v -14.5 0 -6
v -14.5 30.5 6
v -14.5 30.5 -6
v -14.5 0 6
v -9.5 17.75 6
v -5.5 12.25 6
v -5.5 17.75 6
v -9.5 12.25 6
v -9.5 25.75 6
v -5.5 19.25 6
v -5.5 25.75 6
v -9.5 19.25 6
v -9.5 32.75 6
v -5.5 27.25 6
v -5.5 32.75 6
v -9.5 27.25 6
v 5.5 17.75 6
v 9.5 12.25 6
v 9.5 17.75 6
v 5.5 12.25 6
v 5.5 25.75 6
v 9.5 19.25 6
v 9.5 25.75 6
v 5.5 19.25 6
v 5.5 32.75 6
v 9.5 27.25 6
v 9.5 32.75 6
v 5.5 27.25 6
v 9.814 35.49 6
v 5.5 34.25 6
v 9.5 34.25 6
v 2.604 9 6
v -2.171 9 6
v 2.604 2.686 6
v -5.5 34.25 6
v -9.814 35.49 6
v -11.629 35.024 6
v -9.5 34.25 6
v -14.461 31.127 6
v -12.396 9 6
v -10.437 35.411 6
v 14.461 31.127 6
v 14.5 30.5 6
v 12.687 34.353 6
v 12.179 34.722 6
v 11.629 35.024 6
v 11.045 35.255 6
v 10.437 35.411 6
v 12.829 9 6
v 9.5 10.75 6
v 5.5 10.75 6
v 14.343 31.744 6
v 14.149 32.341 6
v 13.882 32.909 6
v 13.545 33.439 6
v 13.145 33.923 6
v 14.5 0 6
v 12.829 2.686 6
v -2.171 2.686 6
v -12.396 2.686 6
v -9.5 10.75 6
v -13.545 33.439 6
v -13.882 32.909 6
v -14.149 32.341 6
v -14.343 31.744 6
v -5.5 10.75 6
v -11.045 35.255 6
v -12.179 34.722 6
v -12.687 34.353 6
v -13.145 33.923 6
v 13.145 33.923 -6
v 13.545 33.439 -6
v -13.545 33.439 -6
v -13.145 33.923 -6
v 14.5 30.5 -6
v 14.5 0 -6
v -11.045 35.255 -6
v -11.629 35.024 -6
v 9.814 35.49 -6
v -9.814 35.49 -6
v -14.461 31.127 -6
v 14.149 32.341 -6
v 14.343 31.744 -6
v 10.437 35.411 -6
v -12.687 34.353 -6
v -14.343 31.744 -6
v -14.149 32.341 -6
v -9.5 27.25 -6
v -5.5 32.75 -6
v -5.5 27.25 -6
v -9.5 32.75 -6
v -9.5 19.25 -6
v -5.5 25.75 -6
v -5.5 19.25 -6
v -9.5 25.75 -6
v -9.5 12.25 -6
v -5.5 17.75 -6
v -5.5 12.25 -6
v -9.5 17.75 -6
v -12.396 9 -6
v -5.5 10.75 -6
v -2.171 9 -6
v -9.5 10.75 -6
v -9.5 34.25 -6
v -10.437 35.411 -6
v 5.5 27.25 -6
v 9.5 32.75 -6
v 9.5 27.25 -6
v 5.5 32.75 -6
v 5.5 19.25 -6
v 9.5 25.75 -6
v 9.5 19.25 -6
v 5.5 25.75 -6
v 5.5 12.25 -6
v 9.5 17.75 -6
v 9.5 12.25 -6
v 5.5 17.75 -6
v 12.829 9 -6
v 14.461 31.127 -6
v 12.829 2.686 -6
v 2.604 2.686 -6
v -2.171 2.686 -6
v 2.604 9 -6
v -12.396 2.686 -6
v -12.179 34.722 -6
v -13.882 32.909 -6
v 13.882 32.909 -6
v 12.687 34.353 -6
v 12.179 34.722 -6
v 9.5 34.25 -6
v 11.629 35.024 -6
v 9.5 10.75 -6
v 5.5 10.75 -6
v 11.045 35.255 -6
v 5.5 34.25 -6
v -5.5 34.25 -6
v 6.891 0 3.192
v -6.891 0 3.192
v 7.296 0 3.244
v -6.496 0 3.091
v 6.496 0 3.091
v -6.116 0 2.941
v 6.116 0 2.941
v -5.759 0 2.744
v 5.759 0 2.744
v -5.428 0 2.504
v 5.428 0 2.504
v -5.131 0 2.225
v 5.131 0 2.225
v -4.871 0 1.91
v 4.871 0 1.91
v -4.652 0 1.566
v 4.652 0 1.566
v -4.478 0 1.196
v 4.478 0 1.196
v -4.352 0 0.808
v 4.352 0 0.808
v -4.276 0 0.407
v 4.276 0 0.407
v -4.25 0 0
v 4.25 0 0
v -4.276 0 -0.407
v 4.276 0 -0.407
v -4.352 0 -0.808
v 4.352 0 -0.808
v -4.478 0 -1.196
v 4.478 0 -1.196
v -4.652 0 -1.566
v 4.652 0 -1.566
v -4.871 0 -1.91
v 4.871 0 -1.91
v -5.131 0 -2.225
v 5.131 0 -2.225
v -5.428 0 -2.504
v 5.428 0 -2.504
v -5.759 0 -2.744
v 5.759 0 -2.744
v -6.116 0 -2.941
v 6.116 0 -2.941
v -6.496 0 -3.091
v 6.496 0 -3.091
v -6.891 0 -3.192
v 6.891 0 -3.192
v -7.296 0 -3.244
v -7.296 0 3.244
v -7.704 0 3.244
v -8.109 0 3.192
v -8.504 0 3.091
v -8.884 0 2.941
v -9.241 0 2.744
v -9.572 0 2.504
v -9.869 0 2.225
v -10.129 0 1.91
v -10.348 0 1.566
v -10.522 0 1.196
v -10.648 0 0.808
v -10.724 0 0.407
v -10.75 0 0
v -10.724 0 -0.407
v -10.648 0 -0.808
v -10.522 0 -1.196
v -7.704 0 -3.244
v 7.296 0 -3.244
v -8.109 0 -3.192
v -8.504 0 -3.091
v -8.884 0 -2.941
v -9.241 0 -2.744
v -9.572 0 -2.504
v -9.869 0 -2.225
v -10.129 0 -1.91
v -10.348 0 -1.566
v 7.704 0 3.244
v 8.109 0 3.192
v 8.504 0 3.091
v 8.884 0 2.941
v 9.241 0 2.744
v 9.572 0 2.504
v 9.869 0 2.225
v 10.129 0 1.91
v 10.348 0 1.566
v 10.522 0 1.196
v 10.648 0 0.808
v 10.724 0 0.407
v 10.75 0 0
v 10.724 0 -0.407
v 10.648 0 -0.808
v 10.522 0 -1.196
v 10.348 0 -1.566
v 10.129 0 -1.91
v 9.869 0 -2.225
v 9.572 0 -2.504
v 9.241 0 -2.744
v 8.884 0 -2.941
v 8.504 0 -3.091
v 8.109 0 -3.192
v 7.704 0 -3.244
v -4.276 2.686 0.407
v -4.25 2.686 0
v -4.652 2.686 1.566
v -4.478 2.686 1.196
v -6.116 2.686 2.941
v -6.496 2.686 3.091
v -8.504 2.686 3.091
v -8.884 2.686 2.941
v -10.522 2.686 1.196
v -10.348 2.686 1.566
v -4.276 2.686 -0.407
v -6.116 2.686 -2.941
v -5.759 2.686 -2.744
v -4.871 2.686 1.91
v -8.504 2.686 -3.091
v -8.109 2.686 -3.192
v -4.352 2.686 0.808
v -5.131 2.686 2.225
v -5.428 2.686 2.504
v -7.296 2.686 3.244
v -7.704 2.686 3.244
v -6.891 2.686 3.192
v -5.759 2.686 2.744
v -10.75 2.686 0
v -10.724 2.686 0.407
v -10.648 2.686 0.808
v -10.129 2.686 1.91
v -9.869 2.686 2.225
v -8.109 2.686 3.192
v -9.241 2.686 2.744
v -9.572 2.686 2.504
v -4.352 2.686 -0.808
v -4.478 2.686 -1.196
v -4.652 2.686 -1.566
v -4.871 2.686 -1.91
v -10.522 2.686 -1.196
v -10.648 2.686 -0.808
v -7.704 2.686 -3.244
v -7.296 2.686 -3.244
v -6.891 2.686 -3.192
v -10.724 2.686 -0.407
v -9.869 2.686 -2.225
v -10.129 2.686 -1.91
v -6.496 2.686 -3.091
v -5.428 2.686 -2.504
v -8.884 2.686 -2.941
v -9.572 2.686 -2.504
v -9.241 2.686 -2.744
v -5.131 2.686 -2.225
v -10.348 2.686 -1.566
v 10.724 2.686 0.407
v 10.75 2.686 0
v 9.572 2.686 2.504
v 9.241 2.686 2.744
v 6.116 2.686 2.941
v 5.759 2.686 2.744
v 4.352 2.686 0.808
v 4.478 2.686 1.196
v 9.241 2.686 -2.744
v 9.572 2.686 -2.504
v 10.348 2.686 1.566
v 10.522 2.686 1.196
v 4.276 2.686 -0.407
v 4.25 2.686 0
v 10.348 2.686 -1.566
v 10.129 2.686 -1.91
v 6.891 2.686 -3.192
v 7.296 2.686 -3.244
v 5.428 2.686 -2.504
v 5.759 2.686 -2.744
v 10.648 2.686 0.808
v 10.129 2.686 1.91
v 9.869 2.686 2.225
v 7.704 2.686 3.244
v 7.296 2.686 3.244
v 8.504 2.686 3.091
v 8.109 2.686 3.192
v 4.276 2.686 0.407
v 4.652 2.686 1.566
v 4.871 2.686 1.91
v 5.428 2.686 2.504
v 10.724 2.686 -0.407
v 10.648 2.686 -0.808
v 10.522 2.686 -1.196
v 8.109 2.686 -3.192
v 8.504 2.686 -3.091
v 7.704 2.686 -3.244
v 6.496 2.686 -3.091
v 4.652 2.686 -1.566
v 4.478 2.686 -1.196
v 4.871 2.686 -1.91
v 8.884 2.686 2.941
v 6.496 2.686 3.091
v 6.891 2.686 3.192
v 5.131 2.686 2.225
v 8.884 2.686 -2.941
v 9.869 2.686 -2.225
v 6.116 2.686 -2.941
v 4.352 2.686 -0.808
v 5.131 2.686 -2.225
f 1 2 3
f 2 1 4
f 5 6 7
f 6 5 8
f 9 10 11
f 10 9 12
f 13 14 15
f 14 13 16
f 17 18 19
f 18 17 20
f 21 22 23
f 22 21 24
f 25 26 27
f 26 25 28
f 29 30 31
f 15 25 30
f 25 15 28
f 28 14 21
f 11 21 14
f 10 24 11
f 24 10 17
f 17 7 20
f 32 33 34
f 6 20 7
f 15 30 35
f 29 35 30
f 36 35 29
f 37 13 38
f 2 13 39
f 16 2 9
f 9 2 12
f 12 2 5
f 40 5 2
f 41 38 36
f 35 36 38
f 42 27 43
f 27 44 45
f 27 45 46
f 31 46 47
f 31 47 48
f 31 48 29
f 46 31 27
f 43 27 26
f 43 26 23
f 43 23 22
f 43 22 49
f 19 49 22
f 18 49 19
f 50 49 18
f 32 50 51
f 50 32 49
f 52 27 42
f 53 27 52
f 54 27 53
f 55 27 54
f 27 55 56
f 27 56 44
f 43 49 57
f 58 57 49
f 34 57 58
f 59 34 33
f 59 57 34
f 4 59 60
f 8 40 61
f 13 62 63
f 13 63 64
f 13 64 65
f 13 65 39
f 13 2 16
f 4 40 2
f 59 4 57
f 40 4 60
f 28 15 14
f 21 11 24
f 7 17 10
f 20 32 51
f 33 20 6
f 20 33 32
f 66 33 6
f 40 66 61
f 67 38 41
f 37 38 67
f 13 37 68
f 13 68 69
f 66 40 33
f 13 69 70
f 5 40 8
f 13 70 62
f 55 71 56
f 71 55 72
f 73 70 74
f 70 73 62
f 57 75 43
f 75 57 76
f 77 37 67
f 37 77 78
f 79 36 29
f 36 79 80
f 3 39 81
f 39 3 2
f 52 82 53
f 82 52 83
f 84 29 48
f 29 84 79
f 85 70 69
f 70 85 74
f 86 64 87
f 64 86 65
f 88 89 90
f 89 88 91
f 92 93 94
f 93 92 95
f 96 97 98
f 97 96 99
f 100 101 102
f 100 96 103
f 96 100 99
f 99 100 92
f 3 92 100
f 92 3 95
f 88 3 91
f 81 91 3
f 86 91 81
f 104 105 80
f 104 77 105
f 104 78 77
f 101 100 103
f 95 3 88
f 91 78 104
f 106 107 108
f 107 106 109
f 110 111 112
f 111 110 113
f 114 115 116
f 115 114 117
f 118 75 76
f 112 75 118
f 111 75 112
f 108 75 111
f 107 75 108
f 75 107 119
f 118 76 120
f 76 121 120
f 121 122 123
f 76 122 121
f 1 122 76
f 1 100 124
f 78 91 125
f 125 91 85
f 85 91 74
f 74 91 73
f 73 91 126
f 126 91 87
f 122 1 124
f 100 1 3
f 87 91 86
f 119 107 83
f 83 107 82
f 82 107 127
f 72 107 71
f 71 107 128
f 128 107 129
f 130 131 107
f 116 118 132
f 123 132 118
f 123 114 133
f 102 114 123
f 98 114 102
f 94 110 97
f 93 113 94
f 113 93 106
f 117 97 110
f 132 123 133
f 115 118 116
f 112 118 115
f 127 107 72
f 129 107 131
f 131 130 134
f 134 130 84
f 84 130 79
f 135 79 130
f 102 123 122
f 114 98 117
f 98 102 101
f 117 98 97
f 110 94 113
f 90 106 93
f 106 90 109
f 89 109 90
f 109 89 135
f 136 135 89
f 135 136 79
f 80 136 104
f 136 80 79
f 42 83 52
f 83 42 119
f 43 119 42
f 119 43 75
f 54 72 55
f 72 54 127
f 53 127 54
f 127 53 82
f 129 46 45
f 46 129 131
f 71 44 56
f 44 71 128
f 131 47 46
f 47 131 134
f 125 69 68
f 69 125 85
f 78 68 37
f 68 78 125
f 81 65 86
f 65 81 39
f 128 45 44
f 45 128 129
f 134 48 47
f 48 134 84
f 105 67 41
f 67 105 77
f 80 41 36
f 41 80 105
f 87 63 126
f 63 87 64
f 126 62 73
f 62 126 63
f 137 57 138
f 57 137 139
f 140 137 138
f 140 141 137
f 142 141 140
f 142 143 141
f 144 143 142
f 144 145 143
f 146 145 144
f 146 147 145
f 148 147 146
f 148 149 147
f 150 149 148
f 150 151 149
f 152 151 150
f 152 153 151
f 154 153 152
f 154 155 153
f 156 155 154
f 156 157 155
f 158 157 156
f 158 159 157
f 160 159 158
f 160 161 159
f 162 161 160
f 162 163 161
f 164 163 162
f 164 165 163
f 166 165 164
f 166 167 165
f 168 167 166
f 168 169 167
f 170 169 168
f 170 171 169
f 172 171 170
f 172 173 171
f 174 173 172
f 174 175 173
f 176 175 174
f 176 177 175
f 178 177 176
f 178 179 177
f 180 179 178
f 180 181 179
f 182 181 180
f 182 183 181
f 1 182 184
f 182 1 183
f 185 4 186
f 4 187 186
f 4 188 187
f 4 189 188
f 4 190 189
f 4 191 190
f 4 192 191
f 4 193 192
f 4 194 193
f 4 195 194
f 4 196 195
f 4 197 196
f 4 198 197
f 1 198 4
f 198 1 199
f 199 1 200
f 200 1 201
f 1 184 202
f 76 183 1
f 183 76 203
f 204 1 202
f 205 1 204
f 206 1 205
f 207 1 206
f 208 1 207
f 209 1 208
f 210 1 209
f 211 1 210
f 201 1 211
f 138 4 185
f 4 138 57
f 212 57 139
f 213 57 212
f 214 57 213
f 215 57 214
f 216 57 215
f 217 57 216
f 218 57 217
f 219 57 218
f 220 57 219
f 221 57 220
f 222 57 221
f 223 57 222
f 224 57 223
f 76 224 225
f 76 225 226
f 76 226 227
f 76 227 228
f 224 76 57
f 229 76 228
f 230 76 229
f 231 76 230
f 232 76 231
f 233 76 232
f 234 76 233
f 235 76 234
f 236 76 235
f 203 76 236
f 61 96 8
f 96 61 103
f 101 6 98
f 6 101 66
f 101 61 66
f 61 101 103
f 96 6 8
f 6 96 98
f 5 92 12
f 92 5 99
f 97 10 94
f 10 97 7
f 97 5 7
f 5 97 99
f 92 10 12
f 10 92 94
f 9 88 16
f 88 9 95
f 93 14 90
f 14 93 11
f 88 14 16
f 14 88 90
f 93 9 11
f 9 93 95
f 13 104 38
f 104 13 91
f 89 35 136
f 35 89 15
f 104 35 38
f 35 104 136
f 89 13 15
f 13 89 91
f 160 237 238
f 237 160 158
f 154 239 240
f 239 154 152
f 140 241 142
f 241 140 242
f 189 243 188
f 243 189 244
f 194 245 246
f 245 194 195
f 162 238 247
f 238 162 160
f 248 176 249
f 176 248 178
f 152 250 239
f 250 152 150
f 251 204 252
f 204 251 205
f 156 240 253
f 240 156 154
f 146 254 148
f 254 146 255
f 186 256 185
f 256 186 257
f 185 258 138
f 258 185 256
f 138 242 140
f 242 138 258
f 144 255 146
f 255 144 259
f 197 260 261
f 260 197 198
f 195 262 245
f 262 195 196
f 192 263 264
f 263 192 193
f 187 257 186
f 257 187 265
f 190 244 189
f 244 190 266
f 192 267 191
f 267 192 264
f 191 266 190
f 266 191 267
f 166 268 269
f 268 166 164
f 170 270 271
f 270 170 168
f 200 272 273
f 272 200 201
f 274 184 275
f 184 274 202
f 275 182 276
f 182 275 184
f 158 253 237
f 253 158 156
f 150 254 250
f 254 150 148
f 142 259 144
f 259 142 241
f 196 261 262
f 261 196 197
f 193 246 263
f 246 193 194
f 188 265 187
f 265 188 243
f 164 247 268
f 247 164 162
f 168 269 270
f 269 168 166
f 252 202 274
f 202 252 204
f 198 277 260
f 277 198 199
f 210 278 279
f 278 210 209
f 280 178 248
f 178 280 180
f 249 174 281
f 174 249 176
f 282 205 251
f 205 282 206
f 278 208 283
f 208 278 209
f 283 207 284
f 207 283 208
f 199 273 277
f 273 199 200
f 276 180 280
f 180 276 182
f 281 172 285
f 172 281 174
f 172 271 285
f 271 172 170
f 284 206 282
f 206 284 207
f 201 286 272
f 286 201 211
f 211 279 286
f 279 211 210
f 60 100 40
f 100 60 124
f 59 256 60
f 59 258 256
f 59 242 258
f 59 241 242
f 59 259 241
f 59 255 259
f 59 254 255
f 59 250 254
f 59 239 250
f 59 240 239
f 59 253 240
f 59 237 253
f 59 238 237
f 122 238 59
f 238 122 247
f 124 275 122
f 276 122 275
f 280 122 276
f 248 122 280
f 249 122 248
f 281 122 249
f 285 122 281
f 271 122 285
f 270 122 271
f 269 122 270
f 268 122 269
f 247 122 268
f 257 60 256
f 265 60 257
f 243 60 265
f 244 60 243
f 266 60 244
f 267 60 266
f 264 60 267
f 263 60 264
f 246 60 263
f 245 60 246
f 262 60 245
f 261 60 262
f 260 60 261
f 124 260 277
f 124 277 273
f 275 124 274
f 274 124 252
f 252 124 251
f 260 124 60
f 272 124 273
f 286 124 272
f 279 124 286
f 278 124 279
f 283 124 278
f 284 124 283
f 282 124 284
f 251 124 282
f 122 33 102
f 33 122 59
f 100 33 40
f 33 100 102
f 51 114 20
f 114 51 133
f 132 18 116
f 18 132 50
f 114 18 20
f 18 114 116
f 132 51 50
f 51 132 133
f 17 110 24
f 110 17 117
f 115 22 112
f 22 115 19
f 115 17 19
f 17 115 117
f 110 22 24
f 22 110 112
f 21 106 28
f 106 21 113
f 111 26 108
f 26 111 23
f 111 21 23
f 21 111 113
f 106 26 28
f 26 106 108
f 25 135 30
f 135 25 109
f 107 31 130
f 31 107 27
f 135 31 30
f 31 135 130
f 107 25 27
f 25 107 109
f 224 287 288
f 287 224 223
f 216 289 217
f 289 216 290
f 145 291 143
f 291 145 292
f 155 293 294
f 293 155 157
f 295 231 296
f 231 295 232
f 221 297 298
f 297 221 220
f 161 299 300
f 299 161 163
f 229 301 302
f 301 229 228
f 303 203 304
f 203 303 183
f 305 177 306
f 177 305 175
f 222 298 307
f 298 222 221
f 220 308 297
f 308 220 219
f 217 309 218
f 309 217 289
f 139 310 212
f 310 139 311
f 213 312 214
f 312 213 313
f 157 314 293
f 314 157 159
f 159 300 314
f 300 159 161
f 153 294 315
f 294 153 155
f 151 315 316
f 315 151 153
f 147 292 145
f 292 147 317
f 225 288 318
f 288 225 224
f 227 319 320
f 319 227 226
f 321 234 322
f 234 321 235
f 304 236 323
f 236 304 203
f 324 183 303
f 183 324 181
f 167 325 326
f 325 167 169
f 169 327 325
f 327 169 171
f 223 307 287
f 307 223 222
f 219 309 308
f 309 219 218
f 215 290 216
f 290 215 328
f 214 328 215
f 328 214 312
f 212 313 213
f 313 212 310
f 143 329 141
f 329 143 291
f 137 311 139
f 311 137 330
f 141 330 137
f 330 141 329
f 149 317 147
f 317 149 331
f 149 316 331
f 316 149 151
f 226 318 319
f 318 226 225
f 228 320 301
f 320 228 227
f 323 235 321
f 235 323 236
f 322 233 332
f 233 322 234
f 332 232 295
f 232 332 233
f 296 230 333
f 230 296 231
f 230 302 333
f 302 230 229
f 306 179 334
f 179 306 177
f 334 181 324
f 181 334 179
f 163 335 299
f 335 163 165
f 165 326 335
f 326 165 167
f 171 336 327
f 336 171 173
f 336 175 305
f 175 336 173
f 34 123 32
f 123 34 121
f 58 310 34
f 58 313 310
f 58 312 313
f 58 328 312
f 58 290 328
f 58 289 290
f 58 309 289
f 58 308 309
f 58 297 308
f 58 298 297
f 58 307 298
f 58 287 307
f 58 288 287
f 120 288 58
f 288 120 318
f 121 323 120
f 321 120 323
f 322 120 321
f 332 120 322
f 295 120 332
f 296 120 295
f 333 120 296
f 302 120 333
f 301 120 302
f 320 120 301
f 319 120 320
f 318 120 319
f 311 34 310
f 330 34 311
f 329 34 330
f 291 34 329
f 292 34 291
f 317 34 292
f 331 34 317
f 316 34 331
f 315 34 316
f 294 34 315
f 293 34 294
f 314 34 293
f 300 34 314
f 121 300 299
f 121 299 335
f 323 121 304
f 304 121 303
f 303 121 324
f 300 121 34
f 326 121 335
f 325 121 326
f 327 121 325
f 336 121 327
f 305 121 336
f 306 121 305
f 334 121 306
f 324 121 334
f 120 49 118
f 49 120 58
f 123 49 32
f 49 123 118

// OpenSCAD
$fn = 50;


difference() {
	union() {
		translate(v = [0, 21.0000000000, -6.0000000000]) {
			rotate(a = [0, 0, 0]) {
				hull() {
					translate(v = [-9.5000000000, 9.5000000000, 0]) {
						rotate(a = [0, 0, 0]) {
							translate(v = [0, 0, 0]) {
								rotate(a = [0, 0, 0]) {
									cylinder(h = 12, r = 5);
								}
							}
						}
					}
					translate(v = [9.5000000000, 9.5000000000, 0]) {
						rotate(a = [0, 0, 0]) {
							translate(v = [0, 0, 0]) {
								rotate(a = [0, 0, 0]) {
									cylinder(h = 12, r = 5);
								}
							}
						}
					}
					translate(v = [-9.5000000000, -9.5000000000, 0]) {
						rotate(a = [0, 0, 0]) {
							translate(v = [0, 0, 0]) {
								rotate(a = [0, 0, 0]) {
									cylinder(h = 12, r = 5);
								}
							}
						}
					}
					translate(v = [9.5000000000, -9.5000000000, 0]) {
						rotate(a = [0, 0, 0]) {
							translate(v = [0, 0, 0]) {
								rotate(a = [0, 0, 0]) {
									cylinder(h = 12, r = 5);
								}
							}
						}
					}
				}
			}
		}
		translate(v = [-14.5000000000, 0, -6.0000000000]) {
			rotate(a = [0, 0, 0]) {
				cube(size = [29, 13.5000000000, 12]);
			}
		}
	}
	union() {
		translate(v = [-9.5000000000, 10.7500000000, -50]) {
			rotate(a = [0, 0, 0]) {
				cube(size = [4, 1.5000000000, 100]);
			}
		}
		translate(v = [-9.5000000000, 17.7500000000, -50]) {
			rotate(a = [0, 0, 0]) {
				cube(size = [4, 1.5000000000, 100]);
			}
		}
		translate(v = [-9.5000000000, 25.7500000000, -50]) {
			rotate(a = [0, 0, 0]) {
				cube(size = [4, 1.5000000000, 100]);
			}
		}
		translate(v = [-9.5000000000, 32.7500000000, -50]) {
			rotate(a = [0, 0, 0]) {
				cube(size = [4, 1.5000000000, 100]);
			}
		}
		translate(v = [-7.5000000000, 8, 0]) {
			rotate(a = [90, 0, 0]) {
				cylinder(h = 8, r = 3.2500000000);
			}
		}
		translate(v = [-12.6126516464, 9, -25]) {
			rotate(a = [90, 0, 0]) {
				cube(size = [10.2253032929, 100, 6.3142500000]);
			}
		}
		translate(v = [5.5000000000, 10.7500000000, -50]) {
			rotate(a = [0, 0, 0]) {
				cube(size = [4, 1.5000000000, 100]);
			}
		}
		translate(v = [5.5000000000, 17.7500000000, -50]) {
			rotate(a = [0, 0, 0]) {
				cube(size = [4, 1.5000000000, 100]);
			}
		}
		translate(v = [5.5000000000, 25.7500000000, -50]) {
			rotate(a = [0, 0, 0]) {
				cube(size = [4, 1.5000000000, 100]);
			}
		}
		translate(v = [5.5000000000, 32.7500000000, -50]) {
			rotate(a = [0, 0, 0]) {
				cube(size = [4, 1.5000000000, 100]);
			}
		}
		translate(v = [7.5000000000, 8, 0]) {
			rotate(a = [90, 0, 0]) {
				cylinder(h = 8, r = 3.2500000000);
			}
		}
		translate(v = [2.3873483536, 9, -25]) {
			rotate(a = [90, 0, 0]) {
				cube(size = [10.2253032929, 100, 6.3142500000]);
			}
		}
	}
}
